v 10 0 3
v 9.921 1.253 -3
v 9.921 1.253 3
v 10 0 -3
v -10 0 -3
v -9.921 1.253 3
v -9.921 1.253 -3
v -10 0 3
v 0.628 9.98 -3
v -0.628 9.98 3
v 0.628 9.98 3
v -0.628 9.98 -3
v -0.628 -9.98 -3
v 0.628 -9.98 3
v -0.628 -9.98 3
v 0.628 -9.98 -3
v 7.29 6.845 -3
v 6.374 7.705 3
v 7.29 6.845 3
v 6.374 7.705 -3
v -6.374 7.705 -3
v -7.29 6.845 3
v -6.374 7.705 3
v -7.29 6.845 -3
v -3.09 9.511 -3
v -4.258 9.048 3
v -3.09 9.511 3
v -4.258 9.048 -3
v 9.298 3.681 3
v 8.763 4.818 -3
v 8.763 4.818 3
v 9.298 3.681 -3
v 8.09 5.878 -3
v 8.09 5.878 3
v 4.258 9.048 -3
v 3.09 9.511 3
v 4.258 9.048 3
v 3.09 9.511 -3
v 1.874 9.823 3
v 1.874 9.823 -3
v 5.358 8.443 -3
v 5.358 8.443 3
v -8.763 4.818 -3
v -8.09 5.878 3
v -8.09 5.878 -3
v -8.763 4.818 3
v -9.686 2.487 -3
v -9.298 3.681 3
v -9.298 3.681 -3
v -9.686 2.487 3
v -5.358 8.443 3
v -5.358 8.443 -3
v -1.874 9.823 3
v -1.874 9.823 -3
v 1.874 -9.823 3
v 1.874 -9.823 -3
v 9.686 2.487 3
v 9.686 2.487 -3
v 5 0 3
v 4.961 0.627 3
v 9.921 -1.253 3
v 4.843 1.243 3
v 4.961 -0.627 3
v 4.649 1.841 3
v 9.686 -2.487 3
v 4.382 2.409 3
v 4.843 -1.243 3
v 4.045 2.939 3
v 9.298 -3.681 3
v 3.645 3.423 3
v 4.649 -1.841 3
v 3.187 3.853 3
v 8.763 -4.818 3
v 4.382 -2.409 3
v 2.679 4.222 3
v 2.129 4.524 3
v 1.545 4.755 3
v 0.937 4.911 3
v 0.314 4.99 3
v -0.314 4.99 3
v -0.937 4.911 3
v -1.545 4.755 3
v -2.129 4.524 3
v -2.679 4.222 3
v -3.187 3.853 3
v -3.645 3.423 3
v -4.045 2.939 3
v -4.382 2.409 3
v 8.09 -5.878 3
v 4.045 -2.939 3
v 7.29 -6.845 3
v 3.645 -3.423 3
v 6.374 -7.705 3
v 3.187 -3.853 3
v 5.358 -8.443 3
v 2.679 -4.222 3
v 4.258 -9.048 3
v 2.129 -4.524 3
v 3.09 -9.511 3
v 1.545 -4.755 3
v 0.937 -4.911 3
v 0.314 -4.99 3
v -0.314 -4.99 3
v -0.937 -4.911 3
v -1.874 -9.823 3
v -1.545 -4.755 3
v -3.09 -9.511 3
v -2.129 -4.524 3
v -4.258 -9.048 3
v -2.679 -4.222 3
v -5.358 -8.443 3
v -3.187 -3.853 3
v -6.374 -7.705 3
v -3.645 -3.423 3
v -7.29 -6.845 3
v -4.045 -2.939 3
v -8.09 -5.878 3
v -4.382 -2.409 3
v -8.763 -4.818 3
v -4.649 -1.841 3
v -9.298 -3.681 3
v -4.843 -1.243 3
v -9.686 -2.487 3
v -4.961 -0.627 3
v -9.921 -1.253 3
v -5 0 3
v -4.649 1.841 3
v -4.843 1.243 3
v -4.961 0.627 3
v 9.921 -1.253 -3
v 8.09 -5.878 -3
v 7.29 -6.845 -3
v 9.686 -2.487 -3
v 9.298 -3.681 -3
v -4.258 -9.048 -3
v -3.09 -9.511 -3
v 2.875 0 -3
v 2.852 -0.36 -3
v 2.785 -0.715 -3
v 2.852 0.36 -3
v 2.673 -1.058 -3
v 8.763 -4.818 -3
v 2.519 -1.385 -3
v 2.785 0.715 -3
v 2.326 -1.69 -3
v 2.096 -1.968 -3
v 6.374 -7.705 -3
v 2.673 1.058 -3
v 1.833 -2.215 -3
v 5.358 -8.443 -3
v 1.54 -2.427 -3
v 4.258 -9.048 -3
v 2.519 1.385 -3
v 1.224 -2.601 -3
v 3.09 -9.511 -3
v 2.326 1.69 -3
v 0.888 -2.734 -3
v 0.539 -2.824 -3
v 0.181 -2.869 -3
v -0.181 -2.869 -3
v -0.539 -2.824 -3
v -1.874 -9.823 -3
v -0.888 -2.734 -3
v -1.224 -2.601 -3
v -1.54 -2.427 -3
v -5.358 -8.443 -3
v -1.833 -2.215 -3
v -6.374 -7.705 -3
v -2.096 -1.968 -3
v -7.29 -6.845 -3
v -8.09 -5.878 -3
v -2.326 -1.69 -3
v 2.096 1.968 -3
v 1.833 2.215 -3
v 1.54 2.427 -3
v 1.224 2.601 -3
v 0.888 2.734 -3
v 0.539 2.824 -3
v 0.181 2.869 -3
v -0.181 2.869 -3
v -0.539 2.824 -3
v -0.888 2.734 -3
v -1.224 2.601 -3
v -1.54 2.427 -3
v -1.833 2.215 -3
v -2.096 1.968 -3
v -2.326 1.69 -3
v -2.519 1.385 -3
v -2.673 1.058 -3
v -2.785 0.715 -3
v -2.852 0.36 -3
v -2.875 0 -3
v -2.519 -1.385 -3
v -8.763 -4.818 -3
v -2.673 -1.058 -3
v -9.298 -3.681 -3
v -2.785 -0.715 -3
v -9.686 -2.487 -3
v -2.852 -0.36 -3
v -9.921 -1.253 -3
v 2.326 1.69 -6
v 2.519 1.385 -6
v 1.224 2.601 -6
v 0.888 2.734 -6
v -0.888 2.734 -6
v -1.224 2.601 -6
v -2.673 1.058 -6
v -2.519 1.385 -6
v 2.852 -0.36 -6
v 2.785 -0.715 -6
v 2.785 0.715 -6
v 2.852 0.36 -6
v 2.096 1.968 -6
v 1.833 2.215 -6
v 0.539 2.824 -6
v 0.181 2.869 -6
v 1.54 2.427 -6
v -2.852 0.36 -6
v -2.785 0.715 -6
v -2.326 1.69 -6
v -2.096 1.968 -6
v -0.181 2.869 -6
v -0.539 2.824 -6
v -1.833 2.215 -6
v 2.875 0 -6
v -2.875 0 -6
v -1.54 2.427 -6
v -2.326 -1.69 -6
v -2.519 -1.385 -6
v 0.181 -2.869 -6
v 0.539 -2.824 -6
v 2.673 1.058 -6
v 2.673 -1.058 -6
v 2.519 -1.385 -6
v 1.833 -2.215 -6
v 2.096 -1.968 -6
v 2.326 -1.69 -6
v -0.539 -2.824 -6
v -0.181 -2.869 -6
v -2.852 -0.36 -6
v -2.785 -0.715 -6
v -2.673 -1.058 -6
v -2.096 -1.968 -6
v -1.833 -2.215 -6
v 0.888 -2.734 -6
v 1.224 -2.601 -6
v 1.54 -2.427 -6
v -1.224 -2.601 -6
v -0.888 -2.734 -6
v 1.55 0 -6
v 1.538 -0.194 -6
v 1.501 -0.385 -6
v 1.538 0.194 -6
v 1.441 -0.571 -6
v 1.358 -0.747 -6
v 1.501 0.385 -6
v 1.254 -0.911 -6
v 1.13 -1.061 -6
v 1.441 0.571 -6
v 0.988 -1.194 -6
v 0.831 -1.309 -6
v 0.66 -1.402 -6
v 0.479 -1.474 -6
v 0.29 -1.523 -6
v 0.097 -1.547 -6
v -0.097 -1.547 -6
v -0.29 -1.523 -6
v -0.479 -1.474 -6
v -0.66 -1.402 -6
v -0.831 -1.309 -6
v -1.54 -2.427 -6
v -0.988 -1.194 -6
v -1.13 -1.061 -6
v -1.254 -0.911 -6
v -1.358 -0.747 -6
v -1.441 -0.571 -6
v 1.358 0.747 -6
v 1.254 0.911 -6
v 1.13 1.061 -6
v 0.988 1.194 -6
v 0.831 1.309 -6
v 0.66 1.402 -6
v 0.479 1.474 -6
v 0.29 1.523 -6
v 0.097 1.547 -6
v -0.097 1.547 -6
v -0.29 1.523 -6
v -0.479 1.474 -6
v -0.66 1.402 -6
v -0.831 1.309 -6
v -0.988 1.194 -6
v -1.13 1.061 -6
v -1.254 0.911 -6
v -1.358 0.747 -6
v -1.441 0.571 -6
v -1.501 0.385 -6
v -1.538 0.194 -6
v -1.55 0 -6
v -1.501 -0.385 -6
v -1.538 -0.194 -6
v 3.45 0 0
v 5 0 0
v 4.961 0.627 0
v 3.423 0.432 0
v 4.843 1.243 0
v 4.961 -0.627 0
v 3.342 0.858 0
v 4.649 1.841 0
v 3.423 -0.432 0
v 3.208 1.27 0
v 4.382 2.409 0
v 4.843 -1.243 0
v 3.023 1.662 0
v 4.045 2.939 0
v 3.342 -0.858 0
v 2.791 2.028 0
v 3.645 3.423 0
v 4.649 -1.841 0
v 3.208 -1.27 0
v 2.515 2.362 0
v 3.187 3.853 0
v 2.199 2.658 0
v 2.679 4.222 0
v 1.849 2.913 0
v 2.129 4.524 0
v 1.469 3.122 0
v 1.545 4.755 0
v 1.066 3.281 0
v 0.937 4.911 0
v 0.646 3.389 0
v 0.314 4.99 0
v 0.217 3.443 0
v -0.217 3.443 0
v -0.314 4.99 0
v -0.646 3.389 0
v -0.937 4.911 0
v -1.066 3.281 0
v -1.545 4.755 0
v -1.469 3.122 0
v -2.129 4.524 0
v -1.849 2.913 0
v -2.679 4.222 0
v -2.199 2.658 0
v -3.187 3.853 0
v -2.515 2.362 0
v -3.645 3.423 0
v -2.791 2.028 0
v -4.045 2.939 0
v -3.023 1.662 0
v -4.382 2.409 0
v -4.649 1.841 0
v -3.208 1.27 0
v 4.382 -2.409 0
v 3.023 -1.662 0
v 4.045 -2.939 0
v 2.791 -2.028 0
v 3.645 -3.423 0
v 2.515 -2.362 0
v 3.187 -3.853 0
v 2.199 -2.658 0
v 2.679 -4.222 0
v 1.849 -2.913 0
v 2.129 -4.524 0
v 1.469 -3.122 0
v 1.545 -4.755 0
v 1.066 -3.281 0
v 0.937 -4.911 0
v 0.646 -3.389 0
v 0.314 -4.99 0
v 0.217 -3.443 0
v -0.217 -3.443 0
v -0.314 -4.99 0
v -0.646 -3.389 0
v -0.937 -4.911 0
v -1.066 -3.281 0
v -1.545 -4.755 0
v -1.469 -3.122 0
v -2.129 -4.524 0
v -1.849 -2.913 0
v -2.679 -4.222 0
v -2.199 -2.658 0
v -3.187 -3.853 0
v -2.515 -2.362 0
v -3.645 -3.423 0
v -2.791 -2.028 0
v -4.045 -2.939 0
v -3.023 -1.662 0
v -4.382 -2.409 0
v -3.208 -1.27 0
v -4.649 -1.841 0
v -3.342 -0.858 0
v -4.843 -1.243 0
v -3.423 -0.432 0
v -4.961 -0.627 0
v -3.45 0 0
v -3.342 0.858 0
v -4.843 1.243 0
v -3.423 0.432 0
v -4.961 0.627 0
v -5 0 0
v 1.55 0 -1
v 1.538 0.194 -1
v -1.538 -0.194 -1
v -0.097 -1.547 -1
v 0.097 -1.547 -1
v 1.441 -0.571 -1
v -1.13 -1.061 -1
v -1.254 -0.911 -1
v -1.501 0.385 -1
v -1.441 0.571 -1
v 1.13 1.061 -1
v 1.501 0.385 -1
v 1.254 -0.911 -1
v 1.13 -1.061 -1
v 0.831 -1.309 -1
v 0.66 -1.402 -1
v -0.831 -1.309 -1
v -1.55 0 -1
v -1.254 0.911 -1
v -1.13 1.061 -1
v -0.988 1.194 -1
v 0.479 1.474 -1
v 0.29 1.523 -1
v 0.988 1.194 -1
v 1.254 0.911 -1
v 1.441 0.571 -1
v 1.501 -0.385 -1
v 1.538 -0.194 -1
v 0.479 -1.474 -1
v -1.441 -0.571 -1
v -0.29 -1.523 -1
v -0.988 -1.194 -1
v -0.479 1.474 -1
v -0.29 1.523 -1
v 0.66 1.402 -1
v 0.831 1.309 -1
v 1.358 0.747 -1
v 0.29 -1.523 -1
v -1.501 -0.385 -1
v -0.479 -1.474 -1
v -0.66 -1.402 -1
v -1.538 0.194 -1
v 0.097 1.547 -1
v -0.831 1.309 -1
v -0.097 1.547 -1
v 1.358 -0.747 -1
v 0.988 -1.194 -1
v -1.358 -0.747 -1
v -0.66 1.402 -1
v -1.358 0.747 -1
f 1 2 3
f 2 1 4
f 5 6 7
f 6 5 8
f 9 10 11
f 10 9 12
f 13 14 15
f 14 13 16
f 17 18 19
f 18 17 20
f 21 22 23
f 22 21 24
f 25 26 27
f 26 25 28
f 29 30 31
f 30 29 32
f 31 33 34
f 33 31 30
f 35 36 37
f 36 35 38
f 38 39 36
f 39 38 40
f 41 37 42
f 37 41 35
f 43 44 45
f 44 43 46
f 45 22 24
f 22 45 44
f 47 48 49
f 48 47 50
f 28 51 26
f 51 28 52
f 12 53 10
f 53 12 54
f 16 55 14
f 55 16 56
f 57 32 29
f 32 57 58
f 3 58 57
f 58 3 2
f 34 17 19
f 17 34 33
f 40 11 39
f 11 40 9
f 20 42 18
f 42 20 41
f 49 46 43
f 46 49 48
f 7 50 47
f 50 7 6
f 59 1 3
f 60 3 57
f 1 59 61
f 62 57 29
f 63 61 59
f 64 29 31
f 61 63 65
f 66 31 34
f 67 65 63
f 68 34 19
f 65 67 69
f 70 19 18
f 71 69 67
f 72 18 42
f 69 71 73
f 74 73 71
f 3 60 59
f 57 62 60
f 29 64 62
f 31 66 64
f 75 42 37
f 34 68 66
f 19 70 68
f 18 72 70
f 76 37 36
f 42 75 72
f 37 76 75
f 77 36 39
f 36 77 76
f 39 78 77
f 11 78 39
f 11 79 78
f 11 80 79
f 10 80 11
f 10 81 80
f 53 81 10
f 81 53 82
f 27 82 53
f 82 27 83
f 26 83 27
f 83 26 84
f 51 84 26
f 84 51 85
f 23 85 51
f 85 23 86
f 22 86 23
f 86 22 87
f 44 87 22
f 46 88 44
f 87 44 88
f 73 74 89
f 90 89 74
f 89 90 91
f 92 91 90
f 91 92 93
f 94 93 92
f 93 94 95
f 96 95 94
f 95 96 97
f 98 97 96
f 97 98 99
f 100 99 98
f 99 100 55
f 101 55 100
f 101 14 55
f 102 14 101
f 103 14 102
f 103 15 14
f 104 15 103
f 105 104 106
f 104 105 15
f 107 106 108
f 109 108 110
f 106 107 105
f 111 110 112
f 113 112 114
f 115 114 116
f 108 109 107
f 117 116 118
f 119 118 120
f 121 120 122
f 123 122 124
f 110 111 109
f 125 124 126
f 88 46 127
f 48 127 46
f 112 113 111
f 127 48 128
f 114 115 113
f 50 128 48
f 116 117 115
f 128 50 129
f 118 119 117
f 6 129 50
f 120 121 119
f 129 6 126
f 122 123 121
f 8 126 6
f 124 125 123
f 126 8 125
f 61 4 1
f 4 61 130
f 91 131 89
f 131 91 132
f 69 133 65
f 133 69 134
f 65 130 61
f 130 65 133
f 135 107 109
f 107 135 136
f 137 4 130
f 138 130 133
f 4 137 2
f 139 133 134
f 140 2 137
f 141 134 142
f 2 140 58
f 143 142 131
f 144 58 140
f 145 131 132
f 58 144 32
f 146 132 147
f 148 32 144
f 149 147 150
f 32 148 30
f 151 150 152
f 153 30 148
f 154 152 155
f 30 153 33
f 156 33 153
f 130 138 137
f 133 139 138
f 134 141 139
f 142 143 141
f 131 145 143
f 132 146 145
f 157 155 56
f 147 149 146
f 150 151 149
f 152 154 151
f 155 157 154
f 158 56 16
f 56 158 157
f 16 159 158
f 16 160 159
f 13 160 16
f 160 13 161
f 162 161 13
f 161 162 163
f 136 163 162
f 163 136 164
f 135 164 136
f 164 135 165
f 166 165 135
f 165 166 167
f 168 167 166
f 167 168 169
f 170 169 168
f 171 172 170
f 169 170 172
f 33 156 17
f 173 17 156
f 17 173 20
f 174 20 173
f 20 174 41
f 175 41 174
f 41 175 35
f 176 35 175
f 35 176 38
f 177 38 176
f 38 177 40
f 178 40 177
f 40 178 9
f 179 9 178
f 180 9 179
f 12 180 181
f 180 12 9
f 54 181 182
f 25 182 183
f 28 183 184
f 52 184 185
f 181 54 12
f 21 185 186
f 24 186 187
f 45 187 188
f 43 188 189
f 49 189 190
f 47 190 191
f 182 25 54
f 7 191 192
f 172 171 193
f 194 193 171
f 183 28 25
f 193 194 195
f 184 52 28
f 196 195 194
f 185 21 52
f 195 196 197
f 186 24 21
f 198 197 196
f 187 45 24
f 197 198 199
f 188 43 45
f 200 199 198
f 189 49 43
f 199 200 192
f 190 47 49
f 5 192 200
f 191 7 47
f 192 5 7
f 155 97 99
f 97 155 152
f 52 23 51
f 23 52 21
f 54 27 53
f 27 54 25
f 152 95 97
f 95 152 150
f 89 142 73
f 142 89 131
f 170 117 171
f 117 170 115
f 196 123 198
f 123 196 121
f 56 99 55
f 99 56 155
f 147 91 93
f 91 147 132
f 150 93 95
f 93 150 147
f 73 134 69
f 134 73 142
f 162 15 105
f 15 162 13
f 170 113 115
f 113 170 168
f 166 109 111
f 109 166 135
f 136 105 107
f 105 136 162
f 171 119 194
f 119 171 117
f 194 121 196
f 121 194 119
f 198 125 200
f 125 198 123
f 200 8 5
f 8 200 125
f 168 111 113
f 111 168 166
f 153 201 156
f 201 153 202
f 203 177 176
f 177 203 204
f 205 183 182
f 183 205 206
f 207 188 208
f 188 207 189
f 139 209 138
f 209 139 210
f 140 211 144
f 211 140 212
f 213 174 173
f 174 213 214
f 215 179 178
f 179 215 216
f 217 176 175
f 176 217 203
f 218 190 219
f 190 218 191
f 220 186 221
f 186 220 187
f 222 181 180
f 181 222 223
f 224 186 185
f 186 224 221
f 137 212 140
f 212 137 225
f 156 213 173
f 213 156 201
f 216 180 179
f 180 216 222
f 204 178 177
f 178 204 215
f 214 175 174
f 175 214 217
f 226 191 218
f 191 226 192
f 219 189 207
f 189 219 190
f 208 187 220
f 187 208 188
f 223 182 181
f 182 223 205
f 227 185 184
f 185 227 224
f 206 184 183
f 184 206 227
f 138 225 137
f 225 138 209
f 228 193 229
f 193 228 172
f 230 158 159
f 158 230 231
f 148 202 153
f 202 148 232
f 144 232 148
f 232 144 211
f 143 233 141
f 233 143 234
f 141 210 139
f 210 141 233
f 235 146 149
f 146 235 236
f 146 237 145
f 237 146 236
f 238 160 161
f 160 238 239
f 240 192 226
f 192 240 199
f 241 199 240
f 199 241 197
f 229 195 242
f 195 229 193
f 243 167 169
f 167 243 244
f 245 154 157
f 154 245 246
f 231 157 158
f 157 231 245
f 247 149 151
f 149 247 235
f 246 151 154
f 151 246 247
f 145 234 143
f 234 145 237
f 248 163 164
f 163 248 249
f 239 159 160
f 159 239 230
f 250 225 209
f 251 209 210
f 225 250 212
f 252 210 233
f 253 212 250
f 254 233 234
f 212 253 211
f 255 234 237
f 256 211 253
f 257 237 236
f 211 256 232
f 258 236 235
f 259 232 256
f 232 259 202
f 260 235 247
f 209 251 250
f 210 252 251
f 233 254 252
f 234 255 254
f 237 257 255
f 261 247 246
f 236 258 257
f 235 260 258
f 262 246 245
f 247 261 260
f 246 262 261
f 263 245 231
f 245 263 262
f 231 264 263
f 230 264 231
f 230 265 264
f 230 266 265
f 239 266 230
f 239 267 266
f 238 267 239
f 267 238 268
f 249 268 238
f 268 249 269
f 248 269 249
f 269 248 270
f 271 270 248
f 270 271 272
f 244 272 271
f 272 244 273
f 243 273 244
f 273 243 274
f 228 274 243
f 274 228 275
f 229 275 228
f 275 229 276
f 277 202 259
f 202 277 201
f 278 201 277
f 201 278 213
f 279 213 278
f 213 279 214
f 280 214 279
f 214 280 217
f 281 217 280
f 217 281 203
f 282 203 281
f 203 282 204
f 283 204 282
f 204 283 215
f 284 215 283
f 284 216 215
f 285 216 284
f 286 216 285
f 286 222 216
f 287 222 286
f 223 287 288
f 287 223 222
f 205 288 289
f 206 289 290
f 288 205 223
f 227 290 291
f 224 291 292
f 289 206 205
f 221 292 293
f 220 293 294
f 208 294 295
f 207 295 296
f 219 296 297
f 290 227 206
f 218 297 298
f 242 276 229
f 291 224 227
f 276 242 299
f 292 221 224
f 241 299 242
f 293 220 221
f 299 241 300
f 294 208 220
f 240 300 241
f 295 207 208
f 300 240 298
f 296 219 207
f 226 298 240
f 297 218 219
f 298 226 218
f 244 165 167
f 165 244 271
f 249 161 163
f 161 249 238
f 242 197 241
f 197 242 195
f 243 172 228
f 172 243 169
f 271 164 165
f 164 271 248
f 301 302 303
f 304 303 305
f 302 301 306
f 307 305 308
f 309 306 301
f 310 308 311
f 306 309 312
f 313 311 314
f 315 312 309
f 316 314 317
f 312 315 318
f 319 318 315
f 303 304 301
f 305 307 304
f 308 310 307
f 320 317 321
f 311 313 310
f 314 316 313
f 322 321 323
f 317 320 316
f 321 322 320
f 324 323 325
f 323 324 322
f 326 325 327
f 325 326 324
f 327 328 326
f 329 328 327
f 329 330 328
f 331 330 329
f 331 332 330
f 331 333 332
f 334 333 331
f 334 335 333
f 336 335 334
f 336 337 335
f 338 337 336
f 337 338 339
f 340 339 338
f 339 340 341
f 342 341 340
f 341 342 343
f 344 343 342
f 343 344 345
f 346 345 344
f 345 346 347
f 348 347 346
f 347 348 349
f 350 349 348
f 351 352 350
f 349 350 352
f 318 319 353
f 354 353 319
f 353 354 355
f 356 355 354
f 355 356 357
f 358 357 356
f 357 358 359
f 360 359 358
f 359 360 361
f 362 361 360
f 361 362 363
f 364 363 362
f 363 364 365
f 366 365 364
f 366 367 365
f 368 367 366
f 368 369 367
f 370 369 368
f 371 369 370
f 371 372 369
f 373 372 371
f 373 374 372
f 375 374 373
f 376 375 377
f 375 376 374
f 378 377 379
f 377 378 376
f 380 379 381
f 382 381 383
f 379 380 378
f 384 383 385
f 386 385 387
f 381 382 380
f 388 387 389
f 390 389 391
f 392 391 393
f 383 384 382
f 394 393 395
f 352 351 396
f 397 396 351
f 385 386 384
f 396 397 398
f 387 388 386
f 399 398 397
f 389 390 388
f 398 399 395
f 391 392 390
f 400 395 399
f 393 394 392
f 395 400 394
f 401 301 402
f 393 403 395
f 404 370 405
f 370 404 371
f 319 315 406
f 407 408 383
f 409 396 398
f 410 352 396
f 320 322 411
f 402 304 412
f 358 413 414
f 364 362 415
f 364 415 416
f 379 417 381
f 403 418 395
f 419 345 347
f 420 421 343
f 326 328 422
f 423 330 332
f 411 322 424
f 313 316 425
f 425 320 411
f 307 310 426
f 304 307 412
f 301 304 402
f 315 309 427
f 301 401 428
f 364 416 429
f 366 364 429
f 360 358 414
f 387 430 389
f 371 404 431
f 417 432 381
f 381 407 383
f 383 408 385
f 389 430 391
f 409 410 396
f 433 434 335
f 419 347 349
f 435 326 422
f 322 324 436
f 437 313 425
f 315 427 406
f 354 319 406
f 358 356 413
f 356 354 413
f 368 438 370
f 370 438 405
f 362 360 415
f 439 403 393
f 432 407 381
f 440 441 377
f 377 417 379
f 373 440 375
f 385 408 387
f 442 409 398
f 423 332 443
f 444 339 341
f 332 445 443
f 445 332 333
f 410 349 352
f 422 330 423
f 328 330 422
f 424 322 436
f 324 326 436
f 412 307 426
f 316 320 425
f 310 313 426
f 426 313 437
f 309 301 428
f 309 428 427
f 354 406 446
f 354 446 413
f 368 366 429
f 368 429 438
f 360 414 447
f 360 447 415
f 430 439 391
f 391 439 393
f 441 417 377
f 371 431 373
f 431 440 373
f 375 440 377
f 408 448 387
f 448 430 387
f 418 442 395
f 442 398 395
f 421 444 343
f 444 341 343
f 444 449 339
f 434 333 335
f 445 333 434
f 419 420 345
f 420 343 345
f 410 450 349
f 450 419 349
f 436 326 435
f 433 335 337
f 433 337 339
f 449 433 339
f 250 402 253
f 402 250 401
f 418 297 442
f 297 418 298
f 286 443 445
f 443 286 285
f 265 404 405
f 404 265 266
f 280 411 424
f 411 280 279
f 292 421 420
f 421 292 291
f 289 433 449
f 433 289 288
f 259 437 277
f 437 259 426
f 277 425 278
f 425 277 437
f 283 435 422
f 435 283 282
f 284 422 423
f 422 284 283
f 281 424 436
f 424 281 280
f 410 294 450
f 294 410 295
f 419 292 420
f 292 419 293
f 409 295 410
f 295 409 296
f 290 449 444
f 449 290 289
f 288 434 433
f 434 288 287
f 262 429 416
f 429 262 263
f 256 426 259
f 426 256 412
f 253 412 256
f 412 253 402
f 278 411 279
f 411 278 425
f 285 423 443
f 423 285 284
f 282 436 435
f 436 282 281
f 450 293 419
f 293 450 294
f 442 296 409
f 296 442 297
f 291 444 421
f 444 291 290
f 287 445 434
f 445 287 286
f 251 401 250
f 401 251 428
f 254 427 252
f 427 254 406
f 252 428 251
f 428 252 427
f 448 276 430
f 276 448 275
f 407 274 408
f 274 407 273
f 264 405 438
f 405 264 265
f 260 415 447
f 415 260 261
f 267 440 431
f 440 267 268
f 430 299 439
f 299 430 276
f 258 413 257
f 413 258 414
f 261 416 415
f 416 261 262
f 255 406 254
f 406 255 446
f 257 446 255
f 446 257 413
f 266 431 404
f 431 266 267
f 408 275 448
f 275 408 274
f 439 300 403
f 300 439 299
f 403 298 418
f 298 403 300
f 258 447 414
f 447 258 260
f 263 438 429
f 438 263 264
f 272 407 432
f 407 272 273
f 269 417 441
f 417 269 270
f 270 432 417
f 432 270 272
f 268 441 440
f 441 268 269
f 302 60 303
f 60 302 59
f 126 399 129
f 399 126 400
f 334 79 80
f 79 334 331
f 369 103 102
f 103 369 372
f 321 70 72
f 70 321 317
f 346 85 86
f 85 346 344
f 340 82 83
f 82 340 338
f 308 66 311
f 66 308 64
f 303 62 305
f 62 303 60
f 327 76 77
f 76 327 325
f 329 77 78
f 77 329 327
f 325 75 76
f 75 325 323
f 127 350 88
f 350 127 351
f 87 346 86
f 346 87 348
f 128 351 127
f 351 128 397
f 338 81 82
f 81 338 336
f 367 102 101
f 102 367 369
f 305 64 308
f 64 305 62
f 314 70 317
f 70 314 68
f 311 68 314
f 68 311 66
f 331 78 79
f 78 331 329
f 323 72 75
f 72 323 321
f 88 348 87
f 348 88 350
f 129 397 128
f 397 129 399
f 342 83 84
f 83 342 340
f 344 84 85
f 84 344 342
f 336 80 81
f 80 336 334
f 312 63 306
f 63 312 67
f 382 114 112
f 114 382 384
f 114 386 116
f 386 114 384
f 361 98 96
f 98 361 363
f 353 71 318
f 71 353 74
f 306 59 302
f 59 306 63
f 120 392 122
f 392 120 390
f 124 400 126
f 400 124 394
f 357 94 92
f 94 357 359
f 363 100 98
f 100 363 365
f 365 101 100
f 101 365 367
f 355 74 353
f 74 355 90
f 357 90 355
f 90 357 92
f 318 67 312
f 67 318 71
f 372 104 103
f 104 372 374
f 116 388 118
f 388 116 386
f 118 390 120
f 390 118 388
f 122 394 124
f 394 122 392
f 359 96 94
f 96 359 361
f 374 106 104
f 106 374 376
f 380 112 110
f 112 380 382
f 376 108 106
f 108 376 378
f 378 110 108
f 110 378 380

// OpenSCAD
$fn = 50;


difference() {
	union() {
		translate(v = [0, 0, -3.0000000000]) {
			cylinder(h = 6, r = 10.0000000000);
		}
		#translate(v = [0, 0, -6.0000000000]) {
			cylinder(h = 6, r = 2.8750000000);
		}
	}
	union() {
		translate(v = [0, 0, 0]) {
			rotate(a = [0, 0, 0]) {
				difference() {
					union() {
						translate(v = [0, 0, -6.0000000000]) {
							cylinder(h = 6, r = 1.2500000000);
						}
						translate(v = [0, 0, -1.0000000000]) {
							cylinder(h = 1.0000000000, r1 = 1.5500000000, r2 = 3.4500000000);
						}
						translate(v = [0, 0, -6.0000000000]) {
							cylinder(h = 6, r = 1.5500000000);
						}
						translate(v = [0, 0, -6.0000000000]) {
							cylinder(h = 6, r = 1.2500000000);
						}
					}
					union();
				}
			}
		}
		#cylinder(h = 3, r = 5.0000000000);
	}
}
